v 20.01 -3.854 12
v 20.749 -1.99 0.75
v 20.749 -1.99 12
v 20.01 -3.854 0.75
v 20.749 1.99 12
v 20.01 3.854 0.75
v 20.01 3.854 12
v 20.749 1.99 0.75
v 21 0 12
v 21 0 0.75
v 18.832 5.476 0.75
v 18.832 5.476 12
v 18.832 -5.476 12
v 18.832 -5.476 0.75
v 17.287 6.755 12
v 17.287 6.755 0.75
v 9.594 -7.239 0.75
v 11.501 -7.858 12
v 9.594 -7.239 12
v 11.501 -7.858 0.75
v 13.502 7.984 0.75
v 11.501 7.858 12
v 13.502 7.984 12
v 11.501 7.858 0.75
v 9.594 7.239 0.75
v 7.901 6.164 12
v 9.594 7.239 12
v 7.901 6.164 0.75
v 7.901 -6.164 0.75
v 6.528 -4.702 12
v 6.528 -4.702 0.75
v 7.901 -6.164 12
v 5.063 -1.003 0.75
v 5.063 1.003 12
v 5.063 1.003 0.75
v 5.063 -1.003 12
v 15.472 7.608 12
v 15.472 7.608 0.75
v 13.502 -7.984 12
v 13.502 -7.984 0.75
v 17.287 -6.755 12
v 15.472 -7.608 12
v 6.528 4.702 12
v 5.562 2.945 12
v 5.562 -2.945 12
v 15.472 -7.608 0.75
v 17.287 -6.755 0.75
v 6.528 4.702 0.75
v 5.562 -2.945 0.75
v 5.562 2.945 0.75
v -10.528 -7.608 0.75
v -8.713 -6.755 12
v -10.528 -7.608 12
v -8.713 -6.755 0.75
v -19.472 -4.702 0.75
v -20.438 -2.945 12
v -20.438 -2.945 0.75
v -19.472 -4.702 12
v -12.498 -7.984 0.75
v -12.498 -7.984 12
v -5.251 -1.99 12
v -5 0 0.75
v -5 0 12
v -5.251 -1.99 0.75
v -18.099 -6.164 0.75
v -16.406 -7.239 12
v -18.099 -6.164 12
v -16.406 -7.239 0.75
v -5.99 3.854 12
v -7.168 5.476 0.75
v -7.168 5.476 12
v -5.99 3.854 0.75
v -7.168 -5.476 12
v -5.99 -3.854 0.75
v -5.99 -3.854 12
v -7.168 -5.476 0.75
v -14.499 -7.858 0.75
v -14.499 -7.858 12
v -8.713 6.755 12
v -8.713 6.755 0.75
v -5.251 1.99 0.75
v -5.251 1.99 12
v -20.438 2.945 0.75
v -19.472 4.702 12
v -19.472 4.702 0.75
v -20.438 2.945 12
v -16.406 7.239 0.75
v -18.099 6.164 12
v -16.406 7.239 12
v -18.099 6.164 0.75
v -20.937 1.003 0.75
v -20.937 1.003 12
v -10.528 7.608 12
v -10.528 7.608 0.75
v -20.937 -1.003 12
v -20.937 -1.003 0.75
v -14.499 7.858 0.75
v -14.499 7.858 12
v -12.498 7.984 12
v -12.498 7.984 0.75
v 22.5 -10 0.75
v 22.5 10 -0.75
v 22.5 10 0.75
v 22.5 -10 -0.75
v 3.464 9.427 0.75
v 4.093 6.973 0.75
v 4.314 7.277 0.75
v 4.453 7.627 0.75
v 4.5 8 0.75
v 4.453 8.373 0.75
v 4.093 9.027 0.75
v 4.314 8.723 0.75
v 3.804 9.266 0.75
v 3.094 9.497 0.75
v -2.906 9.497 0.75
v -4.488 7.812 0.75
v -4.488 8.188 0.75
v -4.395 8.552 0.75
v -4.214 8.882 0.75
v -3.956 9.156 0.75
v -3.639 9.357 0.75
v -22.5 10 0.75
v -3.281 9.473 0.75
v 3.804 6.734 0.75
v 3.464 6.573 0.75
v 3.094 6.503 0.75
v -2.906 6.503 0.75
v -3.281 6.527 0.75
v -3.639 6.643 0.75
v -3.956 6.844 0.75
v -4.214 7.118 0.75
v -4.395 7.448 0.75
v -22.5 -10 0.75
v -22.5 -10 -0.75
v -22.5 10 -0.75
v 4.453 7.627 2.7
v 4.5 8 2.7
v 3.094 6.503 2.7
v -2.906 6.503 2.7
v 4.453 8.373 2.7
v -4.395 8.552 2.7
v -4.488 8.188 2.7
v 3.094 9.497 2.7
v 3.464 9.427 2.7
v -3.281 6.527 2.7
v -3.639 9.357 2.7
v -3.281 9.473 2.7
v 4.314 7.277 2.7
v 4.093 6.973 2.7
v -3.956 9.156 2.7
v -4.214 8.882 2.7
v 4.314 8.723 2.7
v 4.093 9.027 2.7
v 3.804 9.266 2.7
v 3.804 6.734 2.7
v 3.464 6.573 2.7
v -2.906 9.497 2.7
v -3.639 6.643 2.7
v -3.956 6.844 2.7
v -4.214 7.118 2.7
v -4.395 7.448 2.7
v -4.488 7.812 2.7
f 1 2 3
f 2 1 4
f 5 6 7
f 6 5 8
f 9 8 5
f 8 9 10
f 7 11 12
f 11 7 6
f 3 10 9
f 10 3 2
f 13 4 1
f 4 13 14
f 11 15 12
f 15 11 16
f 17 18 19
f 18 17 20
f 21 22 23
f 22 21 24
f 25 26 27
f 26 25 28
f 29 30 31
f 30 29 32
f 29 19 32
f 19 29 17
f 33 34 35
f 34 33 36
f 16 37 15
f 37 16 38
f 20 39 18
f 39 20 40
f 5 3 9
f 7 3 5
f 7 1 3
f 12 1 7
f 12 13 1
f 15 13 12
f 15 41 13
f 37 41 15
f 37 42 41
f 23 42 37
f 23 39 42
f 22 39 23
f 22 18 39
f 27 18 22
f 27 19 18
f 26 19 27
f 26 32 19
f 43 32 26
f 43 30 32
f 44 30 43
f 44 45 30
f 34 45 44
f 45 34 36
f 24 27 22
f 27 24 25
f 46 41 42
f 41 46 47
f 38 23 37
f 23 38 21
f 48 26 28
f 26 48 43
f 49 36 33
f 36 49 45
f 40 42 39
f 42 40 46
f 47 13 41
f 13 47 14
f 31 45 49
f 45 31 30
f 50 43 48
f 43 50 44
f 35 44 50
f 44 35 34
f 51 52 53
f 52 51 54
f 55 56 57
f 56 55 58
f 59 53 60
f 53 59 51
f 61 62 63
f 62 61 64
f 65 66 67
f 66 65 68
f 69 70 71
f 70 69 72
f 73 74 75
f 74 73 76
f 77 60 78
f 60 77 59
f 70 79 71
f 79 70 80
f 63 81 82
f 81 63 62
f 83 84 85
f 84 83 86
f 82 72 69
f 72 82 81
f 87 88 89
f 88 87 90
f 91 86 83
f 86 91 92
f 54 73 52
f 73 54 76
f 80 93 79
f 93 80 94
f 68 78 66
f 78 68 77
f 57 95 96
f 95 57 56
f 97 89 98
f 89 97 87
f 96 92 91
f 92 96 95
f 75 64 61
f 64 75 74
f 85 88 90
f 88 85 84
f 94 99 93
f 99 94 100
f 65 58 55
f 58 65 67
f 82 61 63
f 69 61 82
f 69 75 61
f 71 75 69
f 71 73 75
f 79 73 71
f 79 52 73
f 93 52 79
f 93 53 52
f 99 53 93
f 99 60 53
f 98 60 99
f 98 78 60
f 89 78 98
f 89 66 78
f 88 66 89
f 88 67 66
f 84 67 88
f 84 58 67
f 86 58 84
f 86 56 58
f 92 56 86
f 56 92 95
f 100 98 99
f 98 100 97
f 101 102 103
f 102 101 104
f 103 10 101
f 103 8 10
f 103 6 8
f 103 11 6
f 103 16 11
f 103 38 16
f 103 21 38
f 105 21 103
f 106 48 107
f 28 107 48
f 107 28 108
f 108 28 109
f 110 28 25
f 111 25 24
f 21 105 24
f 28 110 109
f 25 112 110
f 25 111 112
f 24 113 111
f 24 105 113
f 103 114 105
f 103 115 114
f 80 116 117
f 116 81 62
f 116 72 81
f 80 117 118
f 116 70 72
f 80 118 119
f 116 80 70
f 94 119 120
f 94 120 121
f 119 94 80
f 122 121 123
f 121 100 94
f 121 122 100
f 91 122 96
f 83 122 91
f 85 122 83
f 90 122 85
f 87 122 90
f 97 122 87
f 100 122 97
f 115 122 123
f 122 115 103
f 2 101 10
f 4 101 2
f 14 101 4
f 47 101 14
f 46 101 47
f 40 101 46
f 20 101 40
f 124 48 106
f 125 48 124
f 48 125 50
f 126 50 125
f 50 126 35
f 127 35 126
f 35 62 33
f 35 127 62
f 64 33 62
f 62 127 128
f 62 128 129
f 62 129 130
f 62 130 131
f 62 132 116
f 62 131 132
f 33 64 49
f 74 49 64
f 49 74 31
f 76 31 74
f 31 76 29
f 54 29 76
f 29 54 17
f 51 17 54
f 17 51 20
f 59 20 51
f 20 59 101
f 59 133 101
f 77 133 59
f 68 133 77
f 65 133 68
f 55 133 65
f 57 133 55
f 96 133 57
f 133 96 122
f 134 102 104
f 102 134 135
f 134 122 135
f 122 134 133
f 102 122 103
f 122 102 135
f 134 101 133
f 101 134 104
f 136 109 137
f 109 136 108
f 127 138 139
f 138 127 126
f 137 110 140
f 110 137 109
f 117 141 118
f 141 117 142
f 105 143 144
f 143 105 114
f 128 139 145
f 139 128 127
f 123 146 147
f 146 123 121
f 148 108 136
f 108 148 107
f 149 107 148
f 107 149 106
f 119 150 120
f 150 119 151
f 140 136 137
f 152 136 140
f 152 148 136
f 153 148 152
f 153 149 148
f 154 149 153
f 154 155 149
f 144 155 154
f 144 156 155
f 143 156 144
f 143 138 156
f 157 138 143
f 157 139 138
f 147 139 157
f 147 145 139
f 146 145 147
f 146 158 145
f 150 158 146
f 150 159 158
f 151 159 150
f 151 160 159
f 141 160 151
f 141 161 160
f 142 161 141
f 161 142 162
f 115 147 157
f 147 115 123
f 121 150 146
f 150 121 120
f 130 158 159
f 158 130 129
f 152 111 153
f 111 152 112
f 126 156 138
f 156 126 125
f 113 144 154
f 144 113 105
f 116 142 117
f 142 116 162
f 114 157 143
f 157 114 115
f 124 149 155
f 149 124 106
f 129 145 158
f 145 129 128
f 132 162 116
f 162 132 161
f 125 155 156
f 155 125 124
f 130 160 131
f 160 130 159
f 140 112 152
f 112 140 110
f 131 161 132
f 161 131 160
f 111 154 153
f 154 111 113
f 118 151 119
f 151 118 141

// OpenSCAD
$fn=25;

module hc_s04(){
    cube([45, 20, 1.5], center=true);
    for(i=[-1, 1])
        translate([i*-13, 0, 0])
            cylinder(d=16, h=12);
    
    translate([0, 8, 0])
    hull(){
        for (i=[-1, 1])
            translate([i*3, 0, 0.7])
                cylinder(d=3, h=2);
    }
}

hc_s04();
